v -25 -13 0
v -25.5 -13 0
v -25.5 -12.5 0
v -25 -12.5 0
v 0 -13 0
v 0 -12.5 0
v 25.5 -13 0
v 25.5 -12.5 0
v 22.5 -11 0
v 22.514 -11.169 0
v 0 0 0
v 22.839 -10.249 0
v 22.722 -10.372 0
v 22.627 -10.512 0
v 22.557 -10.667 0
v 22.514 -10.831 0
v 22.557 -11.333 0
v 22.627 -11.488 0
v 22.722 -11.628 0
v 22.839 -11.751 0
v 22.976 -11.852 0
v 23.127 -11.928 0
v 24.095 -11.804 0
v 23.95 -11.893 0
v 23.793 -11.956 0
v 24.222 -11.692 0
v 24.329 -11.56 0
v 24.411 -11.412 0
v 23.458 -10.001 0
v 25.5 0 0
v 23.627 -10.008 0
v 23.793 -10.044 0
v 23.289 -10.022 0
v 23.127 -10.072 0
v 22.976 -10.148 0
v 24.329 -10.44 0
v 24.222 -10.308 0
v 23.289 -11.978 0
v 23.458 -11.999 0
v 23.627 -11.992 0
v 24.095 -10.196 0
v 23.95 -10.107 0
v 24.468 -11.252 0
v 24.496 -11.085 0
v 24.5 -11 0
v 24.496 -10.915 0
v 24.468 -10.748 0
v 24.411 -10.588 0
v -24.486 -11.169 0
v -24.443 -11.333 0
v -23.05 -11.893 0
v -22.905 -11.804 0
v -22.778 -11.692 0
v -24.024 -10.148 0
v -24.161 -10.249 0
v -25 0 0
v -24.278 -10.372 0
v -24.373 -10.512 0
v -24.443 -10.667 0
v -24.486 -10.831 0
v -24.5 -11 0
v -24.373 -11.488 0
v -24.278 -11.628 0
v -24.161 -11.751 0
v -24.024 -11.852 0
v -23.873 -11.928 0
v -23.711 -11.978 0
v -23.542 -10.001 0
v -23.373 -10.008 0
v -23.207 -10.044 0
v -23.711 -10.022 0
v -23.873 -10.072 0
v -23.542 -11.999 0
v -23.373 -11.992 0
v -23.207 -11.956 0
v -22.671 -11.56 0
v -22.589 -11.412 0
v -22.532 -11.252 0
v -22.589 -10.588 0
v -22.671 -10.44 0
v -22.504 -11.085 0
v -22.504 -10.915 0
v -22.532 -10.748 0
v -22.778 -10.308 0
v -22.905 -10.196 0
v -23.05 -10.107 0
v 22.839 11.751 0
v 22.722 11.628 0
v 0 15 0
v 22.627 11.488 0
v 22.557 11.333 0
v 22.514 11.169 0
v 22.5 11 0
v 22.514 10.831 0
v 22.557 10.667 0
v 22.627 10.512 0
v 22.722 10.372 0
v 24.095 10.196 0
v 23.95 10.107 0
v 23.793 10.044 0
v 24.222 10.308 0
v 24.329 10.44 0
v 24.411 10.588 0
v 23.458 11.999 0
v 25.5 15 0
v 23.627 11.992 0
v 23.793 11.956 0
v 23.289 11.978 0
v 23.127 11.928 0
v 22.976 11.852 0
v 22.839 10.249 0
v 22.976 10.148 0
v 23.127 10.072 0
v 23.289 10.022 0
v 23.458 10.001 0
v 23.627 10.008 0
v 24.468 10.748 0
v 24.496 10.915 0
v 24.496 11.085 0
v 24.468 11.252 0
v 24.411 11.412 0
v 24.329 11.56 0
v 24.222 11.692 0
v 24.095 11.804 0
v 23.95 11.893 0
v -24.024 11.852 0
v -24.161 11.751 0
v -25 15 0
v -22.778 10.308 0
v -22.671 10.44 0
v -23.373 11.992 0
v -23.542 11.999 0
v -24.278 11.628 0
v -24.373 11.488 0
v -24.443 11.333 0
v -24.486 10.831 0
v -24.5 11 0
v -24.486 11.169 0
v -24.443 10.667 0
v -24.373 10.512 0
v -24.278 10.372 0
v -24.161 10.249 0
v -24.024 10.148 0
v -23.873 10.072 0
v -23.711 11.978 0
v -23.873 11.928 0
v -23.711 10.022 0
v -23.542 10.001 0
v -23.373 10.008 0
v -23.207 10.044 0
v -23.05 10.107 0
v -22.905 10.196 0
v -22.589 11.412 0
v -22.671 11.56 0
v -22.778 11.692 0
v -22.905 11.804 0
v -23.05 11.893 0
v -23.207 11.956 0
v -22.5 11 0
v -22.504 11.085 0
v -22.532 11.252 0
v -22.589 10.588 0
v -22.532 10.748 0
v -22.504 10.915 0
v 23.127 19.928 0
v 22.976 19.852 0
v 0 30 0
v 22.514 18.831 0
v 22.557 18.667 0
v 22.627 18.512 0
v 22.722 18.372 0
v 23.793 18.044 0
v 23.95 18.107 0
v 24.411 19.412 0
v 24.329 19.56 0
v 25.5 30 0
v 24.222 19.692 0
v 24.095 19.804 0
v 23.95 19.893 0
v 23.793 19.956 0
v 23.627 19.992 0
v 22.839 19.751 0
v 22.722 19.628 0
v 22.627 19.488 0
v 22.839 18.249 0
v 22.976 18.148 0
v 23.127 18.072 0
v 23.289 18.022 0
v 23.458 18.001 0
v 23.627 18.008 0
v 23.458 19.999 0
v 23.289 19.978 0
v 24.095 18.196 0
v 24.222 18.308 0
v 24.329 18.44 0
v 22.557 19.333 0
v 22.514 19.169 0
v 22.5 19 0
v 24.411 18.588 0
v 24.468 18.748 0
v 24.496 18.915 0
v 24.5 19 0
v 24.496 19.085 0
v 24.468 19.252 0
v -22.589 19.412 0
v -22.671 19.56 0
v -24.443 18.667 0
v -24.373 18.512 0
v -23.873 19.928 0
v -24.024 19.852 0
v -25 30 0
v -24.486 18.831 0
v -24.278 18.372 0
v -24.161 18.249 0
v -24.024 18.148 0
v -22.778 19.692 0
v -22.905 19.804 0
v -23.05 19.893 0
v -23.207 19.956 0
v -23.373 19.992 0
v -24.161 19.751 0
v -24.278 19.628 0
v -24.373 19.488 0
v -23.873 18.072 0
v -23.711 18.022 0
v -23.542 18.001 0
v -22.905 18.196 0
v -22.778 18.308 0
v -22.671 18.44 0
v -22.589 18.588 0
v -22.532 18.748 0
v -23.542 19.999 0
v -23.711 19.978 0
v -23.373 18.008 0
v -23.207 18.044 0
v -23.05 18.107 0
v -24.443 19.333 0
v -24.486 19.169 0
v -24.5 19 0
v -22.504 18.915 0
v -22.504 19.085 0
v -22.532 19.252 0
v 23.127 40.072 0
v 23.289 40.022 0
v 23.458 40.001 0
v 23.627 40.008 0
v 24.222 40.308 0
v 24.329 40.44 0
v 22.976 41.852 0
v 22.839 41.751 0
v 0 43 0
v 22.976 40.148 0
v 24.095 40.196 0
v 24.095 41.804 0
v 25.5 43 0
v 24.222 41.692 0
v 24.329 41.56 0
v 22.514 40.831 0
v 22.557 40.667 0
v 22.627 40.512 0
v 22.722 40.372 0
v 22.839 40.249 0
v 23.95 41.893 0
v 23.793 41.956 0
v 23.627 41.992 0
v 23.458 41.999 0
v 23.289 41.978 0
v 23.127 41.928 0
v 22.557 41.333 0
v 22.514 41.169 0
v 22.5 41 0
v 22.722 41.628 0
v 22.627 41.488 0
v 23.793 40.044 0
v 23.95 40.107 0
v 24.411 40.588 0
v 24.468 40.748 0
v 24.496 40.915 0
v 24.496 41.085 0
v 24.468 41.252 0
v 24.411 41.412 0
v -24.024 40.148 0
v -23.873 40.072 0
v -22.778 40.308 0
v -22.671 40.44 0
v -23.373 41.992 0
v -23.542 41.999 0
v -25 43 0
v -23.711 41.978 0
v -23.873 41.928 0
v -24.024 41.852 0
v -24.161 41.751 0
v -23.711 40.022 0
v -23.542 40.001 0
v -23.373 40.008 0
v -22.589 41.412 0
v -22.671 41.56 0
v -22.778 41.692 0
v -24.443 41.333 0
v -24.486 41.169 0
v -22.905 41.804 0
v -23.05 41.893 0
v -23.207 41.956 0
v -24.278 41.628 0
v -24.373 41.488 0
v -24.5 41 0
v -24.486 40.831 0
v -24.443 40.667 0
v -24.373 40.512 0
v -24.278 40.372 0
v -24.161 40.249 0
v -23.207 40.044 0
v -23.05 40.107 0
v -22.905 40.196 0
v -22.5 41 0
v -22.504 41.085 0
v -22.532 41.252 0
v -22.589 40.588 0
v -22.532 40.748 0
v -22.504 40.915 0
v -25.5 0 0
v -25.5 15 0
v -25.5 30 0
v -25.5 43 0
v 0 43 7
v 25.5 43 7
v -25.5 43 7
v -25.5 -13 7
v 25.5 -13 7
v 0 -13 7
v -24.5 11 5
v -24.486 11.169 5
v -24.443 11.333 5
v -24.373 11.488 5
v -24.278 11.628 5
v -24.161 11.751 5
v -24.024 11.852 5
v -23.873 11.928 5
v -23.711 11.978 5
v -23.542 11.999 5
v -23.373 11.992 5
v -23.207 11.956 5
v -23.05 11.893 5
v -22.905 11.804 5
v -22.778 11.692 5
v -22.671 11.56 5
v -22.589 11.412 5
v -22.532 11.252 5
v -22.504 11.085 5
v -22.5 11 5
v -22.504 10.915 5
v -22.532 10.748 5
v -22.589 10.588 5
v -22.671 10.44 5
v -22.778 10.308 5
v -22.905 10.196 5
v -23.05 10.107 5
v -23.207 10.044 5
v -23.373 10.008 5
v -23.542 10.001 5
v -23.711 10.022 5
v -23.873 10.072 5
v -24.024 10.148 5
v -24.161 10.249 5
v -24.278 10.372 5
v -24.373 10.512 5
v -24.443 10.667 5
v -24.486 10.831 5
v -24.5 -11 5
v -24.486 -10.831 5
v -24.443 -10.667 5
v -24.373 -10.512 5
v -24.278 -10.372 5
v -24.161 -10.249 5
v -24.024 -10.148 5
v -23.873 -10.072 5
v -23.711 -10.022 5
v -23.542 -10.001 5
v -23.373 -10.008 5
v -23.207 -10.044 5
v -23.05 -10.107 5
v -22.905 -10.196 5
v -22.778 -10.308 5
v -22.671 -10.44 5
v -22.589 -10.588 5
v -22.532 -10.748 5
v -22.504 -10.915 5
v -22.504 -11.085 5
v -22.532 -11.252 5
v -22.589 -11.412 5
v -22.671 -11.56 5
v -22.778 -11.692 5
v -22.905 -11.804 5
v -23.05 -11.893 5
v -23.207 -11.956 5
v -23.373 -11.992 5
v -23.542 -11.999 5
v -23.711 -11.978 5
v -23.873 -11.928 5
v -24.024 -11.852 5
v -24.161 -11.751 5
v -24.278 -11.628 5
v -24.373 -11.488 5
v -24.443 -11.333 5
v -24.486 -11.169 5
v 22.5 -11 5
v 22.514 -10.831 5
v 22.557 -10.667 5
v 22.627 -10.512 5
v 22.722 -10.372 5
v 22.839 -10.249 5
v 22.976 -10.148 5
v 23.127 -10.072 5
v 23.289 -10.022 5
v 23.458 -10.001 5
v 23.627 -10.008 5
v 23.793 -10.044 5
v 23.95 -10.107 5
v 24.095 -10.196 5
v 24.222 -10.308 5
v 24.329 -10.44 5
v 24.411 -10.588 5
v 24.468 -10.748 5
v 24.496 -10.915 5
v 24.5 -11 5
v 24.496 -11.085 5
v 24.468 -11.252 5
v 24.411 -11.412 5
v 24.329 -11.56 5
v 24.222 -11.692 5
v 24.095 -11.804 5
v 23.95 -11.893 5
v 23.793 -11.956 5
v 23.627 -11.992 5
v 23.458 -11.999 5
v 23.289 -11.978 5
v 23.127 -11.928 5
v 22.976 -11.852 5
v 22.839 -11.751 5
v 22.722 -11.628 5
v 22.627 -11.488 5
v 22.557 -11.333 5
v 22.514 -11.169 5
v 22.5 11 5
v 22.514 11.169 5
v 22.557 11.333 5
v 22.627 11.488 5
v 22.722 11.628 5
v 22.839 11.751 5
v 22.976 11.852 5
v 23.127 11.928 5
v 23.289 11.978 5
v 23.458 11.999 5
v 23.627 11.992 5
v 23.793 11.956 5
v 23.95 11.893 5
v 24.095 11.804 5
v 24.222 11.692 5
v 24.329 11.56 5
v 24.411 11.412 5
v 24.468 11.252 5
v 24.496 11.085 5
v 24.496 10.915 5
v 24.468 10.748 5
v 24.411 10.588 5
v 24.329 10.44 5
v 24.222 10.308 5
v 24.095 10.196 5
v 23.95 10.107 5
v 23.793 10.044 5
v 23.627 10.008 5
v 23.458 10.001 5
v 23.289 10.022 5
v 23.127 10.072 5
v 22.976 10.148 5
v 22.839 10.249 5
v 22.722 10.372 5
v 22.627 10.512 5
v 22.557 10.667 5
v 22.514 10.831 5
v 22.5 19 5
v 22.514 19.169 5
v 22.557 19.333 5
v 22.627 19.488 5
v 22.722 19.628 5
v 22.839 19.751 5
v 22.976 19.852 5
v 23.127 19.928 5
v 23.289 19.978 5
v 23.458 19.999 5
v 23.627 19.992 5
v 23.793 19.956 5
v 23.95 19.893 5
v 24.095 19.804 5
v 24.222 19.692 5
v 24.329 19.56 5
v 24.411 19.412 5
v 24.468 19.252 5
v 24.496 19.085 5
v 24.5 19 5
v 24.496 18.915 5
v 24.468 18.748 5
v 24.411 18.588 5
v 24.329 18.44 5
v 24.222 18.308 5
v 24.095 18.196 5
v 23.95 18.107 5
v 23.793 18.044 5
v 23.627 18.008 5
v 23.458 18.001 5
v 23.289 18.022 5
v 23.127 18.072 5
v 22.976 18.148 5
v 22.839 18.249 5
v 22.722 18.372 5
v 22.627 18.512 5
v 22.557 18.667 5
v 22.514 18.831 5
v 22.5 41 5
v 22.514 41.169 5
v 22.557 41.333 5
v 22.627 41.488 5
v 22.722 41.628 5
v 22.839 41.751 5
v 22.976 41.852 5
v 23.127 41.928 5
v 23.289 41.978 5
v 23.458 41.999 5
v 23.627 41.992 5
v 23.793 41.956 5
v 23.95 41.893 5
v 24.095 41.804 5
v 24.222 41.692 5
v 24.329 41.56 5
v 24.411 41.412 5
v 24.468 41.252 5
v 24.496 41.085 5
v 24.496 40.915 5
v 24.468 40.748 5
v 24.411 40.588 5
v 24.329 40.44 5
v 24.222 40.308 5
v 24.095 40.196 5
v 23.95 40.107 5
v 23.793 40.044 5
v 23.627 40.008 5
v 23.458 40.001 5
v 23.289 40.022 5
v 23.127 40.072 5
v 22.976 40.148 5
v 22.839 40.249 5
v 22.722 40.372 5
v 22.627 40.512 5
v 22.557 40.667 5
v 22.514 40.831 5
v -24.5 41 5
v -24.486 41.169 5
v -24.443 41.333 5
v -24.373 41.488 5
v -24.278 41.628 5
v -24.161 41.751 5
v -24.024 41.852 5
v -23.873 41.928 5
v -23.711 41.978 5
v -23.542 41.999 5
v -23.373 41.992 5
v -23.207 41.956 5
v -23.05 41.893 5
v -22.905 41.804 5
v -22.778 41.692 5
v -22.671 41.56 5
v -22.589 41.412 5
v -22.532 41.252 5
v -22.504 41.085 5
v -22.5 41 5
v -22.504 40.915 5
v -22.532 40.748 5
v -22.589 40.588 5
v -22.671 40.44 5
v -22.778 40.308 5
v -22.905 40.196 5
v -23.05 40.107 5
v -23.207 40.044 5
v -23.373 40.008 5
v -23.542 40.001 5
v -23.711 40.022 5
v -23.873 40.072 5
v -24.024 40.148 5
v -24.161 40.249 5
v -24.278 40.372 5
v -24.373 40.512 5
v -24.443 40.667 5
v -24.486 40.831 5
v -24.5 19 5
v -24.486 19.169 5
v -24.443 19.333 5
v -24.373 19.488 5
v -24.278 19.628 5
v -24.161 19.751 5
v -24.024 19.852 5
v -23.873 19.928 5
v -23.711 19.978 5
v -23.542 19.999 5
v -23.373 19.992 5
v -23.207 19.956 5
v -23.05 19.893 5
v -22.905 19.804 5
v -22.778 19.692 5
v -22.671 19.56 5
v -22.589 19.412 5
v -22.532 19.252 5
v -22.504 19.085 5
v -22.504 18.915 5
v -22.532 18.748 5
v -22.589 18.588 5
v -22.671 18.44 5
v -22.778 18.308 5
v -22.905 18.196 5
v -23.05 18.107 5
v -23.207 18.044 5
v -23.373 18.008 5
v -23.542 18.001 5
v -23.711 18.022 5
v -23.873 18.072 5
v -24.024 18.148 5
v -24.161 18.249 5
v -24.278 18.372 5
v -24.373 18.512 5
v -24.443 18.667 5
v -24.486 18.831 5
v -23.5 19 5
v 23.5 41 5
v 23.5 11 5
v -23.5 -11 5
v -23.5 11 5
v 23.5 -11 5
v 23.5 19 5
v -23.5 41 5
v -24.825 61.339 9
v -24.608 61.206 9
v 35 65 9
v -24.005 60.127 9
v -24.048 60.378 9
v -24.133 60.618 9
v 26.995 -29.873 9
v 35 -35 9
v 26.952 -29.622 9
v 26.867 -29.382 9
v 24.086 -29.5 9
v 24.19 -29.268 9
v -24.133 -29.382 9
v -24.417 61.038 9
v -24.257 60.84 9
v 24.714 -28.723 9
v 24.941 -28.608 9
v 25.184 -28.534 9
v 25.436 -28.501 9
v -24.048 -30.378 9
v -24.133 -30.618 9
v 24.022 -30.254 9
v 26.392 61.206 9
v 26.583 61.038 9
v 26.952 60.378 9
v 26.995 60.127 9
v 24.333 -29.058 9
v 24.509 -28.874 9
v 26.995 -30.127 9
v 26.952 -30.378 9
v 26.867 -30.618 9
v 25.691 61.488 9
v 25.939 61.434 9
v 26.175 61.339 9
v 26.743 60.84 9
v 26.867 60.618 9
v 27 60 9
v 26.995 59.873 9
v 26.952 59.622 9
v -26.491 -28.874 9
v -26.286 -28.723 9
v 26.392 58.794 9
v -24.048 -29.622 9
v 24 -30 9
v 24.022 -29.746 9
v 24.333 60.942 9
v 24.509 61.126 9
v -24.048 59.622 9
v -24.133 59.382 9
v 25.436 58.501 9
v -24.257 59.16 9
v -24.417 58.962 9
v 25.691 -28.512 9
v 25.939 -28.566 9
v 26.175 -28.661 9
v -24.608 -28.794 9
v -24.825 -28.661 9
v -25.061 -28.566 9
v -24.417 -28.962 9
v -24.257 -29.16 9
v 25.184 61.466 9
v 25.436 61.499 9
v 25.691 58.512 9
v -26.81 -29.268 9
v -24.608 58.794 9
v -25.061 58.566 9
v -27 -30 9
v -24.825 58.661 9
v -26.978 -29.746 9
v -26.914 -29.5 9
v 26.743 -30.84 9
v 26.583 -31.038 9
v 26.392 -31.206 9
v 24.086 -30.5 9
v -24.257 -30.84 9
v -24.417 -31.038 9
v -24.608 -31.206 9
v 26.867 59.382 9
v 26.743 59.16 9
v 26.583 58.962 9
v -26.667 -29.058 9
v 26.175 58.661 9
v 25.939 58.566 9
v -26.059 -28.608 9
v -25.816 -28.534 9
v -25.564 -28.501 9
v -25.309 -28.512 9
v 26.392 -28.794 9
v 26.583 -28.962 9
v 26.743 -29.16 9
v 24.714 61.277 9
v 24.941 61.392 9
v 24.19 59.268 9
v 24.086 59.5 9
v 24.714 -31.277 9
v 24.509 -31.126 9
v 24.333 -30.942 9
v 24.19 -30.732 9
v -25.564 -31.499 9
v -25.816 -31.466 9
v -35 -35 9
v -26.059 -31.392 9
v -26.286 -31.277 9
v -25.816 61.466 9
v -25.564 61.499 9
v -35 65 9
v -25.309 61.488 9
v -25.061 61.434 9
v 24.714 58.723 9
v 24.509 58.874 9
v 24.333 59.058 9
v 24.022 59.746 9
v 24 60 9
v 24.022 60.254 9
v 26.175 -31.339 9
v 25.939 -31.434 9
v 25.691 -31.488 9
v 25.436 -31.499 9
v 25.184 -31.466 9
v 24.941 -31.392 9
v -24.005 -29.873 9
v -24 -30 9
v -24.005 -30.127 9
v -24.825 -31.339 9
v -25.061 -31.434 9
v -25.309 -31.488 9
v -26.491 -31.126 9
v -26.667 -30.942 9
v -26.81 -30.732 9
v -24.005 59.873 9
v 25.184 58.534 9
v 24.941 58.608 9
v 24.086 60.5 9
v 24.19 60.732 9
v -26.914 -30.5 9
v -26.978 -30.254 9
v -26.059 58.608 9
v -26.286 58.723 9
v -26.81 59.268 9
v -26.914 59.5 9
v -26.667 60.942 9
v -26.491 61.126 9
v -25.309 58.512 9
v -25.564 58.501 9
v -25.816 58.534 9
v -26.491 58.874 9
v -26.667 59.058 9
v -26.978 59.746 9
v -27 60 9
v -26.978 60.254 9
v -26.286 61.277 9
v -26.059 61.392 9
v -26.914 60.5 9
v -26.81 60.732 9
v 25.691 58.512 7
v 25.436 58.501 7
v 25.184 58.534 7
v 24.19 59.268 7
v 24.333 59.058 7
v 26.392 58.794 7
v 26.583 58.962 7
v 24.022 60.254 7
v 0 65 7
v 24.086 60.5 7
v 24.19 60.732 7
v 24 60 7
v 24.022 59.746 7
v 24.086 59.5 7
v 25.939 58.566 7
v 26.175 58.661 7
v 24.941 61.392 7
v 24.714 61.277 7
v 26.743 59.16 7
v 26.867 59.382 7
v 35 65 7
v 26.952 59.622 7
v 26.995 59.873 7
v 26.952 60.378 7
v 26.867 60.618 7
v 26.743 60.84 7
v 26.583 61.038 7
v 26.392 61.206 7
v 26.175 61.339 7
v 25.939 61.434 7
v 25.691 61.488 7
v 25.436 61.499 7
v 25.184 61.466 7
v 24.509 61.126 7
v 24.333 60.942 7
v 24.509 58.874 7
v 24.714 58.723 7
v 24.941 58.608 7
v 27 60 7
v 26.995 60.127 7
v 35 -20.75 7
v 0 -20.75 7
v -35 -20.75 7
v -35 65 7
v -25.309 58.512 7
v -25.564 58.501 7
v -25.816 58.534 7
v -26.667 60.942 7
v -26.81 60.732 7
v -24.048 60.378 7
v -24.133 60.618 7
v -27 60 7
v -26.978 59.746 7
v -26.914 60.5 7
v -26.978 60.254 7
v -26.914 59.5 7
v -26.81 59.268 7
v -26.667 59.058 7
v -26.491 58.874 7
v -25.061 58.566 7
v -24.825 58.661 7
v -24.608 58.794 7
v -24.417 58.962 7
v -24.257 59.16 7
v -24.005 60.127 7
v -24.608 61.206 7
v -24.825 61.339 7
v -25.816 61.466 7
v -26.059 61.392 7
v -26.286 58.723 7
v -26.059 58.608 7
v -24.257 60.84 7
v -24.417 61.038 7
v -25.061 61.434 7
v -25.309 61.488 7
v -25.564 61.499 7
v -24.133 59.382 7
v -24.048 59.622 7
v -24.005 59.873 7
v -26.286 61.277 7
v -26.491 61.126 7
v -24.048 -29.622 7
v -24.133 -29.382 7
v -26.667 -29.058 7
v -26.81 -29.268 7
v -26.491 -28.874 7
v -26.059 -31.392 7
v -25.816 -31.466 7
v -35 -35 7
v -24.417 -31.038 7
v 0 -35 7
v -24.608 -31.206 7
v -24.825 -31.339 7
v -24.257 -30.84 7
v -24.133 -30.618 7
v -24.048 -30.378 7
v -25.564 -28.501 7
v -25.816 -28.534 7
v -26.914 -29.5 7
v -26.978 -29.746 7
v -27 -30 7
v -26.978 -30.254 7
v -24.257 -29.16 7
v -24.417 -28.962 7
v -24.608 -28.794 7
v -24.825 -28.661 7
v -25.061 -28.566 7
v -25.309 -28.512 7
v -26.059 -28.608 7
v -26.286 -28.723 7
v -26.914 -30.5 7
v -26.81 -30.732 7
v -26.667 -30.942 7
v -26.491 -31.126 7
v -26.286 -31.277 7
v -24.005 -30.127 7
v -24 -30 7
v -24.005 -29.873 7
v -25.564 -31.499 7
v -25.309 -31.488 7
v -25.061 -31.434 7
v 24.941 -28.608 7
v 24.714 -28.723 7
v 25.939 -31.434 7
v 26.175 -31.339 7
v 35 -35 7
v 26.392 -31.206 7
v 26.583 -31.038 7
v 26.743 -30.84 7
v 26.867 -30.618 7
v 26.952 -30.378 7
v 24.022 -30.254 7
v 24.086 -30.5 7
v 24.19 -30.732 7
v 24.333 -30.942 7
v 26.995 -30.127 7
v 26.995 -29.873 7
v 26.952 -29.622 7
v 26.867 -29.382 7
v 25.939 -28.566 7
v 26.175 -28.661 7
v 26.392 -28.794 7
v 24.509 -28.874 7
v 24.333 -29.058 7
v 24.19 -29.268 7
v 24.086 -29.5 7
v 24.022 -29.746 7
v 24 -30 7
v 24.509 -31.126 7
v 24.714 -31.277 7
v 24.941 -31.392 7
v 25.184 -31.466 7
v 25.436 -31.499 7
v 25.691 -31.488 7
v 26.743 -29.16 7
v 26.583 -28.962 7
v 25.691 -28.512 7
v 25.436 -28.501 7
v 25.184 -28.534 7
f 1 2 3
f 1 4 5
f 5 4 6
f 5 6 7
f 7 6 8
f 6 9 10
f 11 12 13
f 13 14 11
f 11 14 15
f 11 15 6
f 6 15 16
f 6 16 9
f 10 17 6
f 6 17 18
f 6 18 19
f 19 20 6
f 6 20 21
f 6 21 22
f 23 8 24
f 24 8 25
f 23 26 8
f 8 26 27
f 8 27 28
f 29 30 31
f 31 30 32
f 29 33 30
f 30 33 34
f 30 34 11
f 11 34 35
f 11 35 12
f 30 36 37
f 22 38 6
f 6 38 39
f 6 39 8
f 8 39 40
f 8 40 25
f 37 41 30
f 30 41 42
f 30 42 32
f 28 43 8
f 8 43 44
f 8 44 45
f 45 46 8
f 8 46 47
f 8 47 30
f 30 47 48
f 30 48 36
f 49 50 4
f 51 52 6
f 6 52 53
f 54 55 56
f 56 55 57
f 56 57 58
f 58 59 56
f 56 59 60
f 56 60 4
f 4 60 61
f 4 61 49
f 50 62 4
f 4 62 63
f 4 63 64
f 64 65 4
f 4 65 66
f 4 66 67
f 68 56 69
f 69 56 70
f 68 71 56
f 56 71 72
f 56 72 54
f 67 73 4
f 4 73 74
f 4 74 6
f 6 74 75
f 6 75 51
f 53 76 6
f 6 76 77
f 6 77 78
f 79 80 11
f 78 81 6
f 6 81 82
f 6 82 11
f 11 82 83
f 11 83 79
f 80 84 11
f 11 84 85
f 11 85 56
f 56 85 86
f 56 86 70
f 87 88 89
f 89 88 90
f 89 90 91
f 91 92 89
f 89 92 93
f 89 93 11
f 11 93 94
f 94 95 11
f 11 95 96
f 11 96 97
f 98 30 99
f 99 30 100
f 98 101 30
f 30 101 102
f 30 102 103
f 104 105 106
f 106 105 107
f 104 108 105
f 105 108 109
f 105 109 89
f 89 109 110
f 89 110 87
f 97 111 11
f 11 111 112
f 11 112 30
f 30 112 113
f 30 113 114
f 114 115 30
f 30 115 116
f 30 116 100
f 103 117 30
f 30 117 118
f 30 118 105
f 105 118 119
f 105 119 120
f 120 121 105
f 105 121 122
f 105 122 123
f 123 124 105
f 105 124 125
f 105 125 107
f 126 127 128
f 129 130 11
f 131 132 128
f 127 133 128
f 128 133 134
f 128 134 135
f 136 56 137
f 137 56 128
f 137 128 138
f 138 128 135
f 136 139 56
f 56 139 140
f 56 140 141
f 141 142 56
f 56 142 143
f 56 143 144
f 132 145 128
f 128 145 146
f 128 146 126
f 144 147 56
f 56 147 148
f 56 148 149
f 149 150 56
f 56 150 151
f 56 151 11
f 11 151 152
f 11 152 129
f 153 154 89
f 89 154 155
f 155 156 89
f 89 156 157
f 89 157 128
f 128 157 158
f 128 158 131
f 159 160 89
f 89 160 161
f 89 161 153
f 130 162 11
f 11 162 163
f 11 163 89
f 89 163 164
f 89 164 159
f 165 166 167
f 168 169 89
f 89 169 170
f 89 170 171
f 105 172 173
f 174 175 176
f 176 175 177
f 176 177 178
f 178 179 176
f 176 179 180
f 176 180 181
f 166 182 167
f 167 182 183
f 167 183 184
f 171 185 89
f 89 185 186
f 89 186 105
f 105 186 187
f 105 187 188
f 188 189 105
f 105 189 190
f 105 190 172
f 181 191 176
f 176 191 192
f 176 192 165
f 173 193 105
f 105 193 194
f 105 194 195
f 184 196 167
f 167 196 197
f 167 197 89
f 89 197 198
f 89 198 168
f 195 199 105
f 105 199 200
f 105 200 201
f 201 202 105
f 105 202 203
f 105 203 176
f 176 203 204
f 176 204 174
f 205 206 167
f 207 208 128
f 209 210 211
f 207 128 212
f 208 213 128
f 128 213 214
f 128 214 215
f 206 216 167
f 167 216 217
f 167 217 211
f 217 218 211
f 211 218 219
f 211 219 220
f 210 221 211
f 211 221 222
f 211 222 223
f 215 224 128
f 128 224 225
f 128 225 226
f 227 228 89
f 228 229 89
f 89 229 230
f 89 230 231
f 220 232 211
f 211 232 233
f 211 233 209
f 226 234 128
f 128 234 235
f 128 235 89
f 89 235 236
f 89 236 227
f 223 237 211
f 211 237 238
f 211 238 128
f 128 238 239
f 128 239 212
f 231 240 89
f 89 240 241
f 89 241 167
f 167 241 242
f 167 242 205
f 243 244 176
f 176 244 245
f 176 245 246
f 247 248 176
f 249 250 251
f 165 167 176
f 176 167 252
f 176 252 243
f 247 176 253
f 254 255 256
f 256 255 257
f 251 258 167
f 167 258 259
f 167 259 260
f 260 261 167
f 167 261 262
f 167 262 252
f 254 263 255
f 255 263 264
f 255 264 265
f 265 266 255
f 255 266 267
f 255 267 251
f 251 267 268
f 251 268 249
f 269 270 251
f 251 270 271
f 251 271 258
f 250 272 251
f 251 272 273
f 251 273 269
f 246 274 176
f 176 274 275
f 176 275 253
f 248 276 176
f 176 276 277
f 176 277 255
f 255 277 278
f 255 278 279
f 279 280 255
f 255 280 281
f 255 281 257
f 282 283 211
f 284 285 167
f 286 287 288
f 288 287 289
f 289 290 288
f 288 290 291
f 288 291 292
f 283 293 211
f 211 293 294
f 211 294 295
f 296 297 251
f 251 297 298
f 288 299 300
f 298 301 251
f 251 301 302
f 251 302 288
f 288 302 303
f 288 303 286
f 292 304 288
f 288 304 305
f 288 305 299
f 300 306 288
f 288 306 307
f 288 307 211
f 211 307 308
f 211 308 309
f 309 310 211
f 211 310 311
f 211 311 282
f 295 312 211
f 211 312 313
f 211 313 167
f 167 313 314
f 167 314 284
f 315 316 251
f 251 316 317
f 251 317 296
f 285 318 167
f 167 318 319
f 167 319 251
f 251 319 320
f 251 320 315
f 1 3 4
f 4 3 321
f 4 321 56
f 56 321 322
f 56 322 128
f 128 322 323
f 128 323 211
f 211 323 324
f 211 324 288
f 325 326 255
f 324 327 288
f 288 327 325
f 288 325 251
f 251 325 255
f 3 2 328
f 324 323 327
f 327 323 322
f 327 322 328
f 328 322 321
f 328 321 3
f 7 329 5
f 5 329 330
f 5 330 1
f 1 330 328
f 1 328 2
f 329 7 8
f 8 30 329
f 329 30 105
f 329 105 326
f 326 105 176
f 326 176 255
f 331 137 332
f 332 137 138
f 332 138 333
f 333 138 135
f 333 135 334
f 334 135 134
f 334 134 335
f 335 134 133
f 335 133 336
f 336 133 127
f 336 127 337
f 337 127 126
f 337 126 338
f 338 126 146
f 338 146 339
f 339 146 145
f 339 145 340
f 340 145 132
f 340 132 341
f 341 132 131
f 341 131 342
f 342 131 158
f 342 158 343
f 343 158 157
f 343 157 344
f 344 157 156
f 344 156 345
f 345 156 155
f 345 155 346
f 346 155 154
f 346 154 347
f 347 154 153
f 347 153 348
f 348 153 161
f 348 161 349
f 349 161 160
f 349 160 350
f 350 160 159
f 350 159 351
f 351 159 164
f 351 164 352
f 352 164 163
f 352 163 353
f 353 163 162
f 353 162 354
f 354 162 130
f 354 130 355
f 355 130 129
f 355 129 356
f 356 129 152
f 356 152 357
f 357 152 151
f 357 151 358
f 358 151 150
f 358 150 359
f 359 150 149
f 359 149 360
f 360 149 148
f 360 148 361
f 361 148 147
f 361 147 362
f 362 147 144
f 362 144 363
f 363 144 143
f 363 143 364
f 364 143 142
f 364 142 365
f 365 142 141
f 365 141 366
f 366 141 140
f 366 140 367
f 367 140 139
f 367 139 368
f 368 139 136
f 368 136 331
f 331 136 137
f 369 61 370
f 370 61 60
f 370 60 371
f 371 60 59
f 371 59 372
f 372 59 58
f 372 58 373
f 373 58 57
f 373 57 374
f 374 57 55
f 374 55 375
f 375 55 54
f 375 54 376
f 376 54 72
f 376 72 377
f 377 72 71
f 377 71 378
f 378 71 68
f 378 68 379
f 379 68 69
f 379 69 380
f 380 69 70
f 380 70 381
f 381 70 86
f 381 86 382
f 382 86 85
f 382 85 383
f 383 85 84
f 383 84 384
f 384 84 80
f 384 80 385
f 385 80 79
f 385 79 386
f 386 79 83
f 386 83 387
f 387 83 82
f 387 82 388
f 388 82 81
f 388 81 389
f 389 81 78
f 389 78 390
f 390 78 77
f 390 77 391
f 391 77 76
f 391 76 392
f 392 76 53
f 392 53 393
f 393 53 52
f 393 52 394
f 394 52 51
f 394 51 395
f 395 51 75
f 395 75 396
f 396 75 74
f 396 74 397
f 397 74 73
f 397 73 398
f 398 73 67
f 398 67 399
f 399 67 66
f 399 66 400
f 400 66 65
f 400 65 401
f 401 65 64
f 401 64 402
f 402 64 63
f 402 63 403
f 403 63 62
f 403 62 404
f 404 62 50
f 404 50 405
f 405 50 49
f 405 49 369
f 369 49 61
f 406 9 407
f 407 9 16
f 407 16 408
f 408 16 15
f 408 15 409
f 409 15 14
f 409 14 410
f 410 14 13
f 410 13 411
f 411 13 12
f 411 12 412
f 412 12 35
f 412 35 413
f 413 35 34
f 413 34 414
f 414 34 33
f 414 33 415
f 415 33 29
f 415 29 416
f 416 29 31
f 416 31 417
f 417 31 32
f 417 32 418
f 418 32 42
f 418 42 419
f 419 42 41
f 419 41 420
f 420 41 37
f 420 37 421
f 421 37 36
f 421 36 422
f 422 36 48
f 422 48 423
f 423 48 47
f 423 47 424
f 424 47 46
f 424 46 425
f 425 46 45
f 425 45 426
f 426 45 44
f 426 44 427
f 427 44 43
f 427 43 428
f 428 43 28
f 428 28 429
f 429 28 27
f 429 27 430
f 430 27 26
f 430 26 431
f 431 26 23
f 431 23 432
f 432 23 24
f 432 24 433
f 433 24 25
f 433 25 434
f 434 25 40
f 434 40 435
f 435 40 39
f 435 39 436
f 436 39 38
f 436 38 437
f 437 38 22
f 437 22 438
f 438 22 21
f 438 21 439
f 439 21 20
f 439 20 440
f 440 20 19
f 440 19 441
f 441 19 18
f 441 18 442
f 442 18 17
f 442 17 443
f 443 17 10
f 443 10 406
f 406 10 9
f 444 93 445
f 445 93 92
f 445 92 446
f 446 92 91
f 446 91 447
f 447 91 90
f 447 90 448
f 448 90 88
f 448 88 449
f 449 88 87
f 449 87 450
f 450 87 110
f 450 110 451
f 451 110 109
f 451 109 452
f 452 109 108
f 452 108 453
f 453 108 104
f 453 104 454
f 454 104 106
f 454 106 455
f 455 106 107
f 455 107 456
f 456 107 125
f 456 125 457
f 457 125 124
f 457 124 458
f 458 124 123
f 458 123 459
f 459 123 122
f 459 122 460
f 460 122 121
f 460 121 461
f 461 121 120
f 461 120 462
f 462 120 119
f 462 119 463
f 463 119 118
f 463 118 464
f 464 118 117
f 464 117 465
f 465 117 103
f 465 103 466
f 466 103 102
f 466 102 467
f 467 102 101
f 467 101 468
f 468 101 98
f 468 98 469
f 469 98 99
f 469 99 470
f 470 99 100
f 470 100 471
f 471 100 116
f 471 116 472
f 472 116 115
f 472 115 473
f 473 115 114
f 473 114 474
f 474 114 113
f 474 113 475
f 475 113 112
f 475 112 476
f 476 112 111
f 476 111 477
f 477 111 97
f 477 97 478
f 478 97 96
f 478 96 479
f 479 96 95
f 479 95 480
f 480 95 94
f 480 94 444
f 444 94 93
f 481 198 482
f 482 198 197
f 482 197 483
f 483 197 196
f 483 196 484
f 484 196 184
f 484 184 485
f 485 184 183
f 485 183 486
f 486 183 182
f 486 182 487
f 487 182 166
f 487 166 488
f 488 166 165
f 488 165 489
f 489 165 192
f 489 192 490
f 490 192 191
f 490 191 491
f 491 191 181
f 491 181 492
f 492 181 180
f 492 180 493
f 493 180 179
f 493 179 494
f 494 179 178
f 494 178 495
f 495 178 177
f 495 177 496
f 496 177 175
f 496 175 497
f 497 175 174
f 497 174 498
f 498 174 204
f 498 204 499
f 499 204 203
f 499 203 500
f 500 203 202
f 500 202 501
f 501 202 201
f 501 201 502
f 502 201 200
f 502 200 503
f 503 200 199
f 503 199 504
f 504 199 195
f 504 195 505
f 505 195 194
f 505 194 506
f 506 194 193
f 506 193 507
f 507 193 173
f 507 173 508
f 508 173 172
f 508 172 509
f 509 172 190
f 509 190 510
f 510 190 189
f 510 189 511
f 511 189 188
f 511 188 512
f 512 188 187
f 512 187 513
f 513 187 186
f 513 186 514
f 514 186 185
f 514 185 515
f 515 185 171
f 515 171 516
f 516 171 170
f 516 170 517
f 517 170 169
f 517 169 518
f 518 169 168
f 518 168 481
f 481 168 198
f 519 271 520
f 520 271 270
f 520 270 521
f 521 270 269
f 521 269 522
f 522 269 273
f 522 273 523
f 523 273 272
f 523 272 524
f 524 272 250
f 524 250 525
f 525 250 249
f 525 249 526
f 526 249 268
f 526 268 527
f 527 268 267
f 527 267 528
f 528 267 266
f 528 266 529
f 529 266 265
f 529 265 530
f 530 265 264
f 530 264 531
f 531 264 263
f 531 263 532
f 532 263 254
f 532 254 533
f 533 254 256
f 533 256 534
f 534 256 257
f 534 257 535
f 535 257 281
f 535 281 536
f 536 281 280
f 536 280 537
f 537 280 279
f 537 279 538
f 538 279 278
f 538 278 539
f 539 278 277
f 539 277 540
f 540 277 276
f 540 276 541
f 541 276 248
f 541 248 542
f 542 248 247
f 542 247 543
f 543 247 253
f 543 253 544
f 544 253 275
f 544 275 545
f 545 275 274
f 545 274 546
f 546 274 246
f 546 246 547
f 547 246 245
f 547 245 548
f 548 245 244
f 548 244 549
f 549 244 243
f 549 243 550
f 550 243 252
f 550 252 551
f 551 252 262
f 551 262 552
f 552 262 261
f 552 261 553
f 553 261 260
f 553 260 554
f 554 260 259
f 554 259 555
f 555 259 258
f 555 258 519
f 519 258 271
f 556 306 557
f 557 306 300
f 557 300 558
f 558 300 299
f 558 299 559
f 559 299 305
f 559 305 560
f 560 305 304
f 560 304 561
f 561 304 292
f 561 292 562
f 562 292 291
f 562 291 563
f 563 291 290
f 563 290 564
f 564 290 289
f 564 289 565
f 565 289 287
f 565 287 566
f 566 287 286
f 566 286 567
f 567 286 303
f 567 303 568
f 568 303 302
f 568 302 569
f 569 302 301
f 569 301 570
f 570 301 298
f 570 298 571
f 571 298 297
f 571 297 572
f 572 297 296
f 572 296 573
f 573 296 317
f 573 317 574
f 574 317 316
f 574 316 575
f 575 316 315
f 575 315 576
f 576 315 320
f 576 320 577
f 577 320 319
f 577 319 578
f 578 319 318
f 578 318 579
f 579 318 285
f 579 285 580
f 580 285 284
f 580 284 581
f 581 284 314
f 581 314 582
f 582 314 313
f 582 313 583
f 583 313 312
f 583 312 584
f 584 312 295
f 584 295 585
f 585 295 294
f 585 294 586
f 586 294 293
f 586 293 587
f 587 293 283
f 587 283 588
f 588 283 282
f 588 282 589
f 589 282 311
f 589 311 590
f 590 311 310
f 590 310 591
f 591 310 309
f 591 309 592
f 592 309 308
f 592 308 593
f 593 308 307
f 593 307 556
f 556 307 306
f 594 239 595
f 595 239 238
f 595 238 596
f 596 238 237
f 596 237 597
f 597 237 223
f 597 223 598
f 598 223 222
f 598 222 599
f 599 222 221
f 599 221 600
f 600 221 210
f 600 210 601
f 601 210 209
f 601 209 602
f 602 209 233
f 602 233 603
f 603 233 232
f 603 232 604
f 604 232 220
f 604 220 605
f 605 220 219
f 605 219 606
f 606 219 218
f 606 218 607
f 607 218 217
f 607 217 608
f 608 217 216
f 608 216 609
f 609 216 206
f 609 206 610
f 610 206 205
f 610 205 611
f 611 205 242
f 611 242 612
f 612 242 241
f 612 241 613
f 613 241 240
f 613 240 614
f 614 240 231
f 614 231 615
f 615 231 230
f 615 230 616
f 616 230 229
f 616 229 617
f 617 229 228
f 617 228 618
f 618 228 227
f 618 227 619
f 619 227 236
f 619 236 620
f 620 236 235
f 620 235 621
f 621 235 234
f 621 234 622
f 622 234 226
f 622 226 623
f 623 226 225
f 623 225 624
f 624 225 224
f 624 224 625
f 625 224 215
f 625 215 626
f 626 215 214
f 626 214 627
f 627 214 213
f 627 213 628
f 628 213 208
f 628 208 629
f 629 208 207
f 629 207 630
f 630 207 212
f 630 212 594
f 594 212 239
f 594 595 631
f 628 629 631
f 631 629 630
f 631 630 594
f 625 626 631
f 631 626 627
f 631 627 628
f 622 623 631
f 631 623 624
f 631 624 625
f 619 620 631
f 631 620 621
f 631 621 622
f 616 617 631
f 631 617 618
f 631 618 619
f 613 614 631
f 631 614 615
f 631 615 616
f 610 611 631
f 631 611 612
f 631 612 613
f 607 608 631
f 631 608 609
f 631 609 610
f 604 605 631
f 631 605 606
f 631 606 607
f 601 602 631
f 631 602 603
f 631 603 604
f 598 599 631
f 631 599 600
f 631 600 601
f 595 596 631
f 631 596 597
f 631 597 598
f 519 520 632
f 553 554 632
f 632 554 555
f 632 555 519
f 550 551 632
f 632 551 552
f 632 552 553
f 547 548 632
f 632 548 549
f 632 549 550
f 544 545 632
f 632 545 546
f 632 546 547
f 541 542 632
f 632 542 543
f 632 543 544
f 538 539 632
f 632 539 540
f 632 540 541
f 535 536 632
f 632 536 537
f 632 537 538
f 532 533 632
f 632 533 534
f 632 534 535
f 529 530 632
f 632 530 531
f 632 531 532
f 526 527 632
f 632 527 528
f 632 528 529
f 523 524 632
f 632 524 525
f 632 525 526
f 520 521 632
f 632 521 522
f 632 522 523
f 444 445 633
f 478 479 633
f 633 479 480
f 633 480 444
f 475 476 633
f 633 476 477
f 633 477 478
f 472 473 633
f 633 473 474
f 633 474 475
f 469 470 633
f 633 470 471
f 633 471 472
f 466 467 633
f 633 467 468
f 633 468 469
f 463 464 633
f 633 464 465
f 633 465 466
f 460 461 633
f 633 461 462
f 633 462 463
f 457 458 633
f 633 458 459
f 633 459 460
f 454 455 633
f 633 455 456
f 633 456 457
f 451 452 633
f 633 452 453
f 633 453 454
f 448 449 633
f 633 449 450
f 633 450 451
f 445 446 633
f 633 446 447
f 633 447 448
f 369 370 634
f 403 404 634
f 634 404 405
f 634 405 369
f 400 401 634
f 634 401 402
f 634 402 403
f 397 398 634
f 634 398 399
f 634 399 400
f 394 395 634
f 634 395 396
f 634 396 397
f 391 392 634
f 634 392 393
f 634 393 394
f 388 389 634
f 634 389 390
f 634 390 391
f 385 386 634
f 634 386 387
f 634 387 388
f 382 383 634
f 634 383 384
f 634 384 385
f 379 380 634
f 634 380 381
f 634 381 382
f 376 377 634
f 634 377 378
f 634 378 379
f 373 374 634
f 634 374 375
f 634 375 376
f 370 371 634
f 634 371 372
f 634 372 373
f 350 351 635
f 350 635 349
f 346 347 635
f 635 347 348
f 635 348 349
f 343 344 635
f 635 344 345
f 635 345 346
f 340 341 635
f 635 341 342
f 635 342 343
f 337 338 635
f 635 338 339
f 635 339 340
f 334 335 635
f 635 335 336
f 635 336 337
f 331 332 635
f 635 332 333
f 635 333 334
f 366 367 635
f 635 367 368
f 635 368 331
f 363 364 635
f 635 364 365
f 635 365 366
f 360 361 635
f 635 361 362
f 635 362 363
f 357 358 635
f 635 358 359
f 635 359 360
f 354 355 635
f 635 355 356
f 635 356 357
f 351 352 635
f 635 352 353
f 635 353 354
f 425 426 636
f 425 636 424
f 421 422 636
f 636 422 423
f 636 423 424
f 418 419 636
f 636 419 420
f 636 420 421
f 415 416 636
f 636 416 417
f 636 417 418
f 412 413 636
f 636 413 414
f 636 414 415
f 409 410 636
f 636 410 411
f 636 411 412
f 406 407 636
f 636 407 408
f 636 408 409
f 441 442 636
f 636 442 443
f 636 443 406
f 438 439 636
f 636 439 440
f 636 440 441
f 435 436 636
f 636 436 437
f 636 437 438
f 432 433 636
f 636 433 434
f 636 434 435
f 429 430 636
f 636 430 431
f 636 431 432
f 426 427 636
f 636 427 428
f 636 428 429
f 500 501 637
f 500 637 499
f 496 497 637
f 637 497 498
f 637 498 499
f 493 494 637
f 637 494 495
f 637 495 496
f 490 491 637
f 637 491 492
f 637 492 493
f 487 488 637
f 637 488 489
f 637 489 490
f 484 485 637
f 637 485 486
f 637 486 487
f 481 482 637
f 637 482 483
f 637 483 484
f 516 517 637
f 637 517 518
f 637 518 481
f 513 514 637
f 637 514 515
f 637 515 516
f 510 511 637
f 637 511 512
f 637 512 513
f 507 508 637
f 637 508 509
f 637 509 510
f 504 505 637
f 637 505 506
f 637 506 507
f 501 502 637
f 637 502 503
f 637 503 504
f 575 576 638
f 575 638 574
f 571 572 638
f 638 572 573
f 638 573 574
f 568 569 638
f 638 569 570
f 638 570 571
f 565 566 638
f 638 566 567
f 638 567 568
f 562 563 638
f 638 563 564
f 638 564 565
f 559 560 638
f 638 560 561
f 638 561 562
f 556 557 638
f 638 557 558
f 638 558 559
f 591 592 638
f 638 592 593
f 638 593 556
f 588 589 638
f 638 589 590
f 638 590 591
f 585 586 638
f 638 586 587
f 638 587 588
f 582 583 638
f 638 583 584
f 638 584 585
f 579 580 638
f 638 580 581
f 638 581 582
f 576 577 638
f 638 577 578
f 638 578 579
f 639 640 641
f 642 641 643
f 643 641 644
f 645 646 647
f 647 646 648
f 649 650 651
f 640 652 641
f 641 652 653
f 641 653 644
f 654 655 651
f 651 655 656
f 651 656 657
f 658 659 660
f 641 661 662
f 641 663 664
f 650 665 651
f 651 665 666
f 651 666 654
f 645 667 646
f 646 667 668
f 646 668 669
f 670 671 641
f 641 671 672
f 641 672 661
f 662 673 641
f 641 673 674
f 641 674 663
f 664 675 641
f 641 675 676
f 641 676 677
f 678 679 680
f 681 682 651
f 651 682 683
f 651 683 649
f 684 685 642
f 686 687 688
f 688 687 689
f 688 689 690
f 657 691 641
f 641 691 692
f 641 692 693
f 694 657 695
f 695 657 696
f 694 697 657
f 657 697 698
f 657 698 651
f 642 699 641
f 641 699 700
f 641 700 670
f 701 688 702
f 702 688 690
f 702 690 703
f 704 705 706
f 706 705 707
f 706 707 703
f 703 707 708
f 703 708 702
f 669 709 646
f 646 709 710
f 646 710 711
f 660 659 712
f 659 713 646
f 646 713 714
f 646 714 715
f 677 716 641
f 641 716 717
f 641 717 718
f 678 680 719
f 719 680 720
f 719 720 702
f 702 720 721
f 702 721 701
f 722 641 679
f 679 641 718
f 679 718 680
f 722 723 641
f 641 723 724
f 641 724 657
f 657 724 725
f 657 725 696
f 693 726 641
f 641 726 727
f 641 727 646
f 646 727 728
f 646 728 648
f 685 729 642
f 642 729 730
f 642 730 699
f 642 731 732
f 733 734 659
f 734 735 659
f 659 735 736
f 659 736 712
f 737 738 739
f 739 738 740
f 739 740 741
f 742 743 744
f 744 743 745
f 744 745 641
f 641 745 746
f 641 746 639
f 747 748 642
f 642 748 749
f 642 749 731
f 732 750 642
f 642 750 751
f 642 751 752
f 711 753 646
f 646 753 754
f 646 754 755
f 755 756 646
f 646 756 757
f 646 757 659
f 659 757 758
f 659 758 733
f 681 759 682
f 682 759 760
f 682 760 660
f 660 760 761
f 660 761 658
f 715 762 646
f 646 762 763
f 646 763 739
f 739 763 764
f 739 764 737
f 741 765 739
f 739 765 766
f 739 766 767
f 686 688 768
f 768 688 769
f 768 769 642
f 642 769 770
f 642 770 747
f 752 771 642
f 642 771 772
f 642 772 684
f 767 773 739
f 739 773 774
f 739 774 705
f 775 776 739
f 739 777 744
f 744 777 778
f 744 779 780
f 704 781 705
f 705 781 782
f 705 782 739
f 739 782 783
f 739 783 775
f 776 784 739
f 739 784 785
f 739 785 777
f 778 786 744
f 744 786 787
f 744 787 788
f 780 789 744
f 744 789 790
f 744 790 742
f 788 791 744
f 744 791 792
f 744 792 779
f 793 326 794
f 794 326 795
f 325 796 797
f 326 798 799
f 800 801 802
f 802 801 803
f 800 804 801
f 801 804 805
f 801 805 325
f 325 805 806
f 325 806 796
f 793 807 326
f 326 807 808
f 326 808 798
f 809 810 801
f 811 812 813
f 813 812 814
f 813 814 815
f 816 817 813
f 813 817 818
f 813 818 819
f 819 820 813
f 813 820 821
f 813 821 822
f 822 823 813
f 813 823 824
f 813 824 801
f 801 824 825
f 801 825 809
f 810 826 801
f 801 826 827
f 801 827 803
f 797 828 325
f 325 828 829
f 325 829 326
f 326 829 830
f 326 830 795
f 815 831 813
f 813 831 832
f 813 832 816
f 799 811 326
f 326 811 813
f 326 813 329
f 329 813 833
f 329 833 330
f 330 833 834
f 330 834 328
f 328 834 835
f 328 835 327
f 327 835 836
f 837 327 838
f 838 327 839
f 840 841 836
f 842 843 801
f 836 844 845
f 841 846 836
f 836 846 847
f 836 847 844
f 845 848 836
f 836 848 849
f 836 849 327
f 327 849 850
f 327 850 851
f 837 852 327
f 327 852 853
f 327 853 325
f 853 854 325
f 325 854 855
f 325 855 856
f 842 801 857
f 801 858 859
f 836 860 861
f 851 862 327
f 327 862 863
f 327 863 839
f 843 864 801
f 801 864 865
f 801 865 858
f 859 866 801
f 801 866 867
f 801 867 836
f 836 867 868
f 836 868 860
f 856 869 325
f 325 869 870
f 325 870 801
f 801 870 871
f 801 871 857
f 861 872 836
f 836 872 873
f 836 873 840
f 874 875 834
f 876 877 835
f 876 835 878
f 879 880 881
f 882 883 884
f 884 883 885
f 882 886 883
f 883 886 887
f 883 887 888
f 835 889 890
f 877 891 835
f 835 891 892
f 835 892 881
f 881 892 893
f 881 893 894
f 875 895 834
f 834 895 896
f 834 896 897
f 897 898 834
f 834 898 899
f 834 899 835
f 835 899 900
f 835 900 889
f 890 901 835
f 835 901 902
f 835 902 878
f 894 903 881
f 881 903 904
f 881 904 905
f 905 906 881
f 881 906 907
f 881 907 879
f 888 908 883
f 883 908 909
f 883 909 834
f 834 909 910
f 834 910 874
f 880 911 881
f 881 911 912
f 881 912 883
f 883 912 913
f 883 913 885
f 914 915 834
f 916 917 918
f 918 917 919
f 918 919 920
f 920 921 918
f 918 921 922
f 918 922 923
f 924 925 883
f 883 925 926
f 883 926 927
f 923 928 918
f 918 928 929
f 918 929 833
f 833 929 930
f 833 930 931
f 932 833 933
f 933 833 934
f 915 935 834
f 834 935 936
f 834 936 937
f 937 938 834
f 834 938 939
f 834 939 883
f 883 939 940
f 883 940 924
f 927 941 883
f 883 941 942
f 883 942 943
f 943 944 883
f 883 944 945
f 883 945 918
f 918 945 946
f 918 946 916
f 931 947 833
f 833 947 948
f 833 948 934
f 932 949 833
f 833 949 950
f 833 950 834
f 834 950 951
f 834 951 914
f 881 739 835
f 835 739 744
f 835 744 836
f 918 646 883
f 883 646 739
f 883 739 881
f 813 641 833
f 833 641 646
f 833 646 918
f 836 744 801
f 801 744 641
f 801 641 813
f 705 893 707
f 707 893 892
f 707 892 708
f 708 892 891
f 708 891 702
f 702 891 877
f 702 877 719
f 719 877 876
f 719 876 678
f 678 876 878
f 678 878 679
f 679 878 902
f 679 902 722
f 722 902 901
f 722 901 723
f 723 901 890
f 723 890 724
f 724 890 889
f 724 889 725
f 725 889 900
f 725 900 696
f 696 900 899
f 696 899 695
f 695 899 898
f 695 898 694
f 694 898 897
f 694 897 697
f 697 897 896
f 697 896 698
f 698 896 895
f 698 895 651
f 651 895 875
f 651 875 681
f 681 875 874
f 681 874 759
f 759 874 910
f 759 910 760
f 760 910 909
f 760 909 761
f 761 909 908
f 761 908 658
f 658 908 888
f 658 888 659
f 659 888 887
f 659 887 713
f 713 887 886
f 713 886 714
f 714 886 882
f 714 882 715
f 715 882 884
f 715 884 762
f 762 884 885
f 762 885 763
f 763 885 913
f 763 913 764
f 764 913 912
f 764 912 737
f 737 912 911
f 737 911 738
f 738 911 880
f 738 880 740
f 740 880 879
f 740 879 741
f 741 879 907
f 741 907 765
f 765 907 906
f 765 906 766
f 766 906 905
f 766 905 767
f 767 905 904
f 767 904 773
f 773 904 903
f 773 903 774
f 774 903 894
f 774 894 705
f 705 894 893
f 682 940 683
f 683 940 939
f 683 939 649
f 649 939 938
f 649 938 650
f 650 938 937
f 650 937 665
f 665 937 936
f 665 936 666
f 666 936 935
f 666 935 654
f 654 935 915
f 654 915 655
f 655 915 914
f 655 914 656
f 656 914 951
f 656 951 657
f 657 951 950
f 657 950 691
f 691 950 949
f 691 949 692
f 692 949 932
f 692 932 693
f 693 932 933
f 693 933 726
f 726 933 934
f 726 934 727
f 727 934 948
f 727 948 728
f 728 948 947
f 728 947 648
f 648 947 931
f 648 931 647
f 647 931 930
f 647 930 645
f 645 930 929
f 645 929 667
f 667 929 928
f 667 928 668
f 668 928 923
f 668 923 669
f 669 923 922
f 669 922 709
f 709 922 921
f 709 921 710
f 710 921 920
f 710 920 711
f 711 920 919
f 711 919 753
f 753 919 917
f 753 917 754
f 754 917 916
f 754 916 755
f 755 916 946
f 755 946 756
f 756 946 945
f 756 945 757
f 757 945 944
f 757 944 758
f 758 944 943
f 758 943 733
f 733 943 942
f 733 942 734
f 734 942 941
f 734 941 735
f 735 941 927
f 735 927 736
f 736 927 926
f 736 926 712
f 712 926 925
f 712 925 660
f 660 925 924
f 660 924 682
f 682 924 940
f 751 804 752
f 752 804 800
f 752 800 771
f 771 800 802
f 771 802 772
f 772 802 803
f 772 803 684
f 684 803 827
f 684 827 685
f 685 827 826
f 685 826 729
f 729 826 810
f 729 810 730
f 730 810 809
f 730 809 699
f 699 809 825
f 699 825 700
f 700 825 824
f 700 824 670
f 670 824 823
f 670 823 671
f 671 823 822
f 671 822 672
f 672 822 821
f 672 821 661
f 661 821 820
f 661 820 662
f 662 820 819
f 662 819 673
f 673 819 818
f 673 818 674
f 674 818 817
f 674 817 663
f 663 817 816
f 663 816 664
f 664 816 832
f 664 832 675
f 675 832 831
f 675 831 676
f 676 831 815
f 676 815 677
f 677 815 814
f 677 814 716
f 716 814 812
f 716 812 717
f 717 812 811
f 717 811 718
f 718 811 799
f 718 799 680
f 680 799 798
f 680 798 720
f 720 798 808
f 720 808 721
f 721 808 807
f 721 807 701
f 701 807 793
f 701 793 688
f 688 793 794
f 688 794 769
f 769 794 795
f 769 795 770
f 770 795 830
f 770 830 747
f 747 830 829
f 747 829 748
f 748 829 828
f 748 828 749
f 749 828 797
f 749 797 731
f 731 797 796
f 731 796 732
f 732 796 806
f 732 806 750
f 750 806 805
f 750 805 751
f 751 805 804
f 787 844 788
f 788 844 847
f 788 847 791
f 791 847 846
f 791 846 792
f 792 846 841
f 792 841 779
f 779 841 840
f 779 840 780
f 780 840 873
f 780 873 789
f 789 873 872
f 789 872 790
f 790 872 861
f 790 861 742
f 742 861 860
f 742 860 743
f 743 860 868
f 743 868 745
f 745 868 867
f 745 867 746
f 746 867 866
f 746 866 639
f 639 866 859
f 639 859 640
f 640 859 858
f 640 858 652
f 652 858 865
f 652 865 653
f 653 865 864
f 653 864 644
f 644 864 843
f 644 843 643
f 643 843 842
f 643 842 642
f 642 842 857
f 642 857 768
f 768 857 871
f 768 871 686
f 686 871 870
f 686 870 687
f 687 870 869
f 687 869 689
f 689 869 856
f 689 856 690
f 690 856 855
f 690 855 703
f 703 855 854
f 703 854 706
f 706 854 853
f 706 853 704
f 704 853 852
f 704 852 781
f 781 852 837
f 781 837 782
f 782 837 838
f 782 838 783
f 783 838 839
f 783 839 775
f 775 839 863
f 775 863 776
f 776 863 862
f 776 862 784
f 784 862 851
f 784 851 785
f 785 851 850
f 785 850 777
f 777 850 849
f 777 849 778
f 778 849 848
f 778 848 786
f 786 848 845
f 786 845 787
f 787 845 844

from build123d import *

# Parameters (mm, degrees)
SKETCH1_R           = 1
BOSS_EXTRUDE1_DEPTH = 5
SKETCH3_W           = 51
SKETCH3_H           = 56
BOSS_EXTRUDE3_DEPTH = 2
SKETCH7_W           = 70
SKETCH7_H           = 100
SKETCH7_R           = 1.5
BOSS_EXTRUDE5_DEPTH = 2


with BuildPart() as part:
    # Sketch1 → Boss-Extrude1 (new body)
    with BuildSketch(Plane.XY):
        Polygon((-25.5, -13), (25.5, -13), (25.5, 13), (25.5, 17), (25.5, 43), (-25.5, 43), (-25.5, 17), (-25.5, 13), align=None)
        with Locations((-23.500000003, 11.000000003)):
            Circle(SKETCH1_R, mode=Mode.SUBTRACT)
        with Locations((-23.500000003, -11.000000003)):
            Circle(SKETCH1_R, mode=Mode.SUBTRACT)
        with Locations((23.500000003, -11.000000003)):
            Circle(SKETCH1_R, mode=Mode.SUBTRACT)
        with Locations((23.500000003, 11.000000003)):
            Circle(SKETCH1_R, mode=Mode.SUBTRACT)
        with Locations((23.500000003, 18.999999997)):
            Circle(SKETCH1_R, mode=Mode.SUBTRACT)
        with Locations((23.500000003, 41.000000003)):
            Circle(SKETCH1_R, mode=Mode.SUBTRACT)
        with Locations((-23.500000003, 41.000000003)):
            Circle(SKETCH1_R, mode=Mode.SUBTRACT)
        with Locations((-23.500000003, 18.999999997)):
            Circle(SKETCH1_R, mode=Mode.SUBTRACT)
    extrude(amount=BOSS_EXTRUDE1_DEPTH)

    # Sketch3 → Boss-Extrude3 (add)
    with BuildSketch(Plane.XY.offset(5)):
        with Locations((0, 15)):
            Rectangle(SKETCH3_W, SKETCH3_H)
    extrude(amount=BOSS_EXTRUDE3_DEPTH)

    # Sketch7 → Boss-Extrude5 (add)
    with BuildSketch(Plane.XY.offset(7)):
        with Locations((0, 15)):
            Rectangle(SKETCH7_W, SKETCH7_H)
        with Locations((-25.5, -30)):
            Circle(SKETCH7_R, mode=Mode.SUBTRACT)
        with Locations((25.5, -30)):
            Circle(SKETCH7_R, mode=Mode.SUBTRACT)
        with Locations((25.5, 60)):
            Circle(SKETCH7_R, mode=Mode.SUBTRACT)
        with Locations((-25.5, 60)):
            Circle(SKETCH7_R, mode=Mode.SUBTRACT)
    extrude(amount=BOSS_EXTRUDE5_DEPTH)


solid = part.part
